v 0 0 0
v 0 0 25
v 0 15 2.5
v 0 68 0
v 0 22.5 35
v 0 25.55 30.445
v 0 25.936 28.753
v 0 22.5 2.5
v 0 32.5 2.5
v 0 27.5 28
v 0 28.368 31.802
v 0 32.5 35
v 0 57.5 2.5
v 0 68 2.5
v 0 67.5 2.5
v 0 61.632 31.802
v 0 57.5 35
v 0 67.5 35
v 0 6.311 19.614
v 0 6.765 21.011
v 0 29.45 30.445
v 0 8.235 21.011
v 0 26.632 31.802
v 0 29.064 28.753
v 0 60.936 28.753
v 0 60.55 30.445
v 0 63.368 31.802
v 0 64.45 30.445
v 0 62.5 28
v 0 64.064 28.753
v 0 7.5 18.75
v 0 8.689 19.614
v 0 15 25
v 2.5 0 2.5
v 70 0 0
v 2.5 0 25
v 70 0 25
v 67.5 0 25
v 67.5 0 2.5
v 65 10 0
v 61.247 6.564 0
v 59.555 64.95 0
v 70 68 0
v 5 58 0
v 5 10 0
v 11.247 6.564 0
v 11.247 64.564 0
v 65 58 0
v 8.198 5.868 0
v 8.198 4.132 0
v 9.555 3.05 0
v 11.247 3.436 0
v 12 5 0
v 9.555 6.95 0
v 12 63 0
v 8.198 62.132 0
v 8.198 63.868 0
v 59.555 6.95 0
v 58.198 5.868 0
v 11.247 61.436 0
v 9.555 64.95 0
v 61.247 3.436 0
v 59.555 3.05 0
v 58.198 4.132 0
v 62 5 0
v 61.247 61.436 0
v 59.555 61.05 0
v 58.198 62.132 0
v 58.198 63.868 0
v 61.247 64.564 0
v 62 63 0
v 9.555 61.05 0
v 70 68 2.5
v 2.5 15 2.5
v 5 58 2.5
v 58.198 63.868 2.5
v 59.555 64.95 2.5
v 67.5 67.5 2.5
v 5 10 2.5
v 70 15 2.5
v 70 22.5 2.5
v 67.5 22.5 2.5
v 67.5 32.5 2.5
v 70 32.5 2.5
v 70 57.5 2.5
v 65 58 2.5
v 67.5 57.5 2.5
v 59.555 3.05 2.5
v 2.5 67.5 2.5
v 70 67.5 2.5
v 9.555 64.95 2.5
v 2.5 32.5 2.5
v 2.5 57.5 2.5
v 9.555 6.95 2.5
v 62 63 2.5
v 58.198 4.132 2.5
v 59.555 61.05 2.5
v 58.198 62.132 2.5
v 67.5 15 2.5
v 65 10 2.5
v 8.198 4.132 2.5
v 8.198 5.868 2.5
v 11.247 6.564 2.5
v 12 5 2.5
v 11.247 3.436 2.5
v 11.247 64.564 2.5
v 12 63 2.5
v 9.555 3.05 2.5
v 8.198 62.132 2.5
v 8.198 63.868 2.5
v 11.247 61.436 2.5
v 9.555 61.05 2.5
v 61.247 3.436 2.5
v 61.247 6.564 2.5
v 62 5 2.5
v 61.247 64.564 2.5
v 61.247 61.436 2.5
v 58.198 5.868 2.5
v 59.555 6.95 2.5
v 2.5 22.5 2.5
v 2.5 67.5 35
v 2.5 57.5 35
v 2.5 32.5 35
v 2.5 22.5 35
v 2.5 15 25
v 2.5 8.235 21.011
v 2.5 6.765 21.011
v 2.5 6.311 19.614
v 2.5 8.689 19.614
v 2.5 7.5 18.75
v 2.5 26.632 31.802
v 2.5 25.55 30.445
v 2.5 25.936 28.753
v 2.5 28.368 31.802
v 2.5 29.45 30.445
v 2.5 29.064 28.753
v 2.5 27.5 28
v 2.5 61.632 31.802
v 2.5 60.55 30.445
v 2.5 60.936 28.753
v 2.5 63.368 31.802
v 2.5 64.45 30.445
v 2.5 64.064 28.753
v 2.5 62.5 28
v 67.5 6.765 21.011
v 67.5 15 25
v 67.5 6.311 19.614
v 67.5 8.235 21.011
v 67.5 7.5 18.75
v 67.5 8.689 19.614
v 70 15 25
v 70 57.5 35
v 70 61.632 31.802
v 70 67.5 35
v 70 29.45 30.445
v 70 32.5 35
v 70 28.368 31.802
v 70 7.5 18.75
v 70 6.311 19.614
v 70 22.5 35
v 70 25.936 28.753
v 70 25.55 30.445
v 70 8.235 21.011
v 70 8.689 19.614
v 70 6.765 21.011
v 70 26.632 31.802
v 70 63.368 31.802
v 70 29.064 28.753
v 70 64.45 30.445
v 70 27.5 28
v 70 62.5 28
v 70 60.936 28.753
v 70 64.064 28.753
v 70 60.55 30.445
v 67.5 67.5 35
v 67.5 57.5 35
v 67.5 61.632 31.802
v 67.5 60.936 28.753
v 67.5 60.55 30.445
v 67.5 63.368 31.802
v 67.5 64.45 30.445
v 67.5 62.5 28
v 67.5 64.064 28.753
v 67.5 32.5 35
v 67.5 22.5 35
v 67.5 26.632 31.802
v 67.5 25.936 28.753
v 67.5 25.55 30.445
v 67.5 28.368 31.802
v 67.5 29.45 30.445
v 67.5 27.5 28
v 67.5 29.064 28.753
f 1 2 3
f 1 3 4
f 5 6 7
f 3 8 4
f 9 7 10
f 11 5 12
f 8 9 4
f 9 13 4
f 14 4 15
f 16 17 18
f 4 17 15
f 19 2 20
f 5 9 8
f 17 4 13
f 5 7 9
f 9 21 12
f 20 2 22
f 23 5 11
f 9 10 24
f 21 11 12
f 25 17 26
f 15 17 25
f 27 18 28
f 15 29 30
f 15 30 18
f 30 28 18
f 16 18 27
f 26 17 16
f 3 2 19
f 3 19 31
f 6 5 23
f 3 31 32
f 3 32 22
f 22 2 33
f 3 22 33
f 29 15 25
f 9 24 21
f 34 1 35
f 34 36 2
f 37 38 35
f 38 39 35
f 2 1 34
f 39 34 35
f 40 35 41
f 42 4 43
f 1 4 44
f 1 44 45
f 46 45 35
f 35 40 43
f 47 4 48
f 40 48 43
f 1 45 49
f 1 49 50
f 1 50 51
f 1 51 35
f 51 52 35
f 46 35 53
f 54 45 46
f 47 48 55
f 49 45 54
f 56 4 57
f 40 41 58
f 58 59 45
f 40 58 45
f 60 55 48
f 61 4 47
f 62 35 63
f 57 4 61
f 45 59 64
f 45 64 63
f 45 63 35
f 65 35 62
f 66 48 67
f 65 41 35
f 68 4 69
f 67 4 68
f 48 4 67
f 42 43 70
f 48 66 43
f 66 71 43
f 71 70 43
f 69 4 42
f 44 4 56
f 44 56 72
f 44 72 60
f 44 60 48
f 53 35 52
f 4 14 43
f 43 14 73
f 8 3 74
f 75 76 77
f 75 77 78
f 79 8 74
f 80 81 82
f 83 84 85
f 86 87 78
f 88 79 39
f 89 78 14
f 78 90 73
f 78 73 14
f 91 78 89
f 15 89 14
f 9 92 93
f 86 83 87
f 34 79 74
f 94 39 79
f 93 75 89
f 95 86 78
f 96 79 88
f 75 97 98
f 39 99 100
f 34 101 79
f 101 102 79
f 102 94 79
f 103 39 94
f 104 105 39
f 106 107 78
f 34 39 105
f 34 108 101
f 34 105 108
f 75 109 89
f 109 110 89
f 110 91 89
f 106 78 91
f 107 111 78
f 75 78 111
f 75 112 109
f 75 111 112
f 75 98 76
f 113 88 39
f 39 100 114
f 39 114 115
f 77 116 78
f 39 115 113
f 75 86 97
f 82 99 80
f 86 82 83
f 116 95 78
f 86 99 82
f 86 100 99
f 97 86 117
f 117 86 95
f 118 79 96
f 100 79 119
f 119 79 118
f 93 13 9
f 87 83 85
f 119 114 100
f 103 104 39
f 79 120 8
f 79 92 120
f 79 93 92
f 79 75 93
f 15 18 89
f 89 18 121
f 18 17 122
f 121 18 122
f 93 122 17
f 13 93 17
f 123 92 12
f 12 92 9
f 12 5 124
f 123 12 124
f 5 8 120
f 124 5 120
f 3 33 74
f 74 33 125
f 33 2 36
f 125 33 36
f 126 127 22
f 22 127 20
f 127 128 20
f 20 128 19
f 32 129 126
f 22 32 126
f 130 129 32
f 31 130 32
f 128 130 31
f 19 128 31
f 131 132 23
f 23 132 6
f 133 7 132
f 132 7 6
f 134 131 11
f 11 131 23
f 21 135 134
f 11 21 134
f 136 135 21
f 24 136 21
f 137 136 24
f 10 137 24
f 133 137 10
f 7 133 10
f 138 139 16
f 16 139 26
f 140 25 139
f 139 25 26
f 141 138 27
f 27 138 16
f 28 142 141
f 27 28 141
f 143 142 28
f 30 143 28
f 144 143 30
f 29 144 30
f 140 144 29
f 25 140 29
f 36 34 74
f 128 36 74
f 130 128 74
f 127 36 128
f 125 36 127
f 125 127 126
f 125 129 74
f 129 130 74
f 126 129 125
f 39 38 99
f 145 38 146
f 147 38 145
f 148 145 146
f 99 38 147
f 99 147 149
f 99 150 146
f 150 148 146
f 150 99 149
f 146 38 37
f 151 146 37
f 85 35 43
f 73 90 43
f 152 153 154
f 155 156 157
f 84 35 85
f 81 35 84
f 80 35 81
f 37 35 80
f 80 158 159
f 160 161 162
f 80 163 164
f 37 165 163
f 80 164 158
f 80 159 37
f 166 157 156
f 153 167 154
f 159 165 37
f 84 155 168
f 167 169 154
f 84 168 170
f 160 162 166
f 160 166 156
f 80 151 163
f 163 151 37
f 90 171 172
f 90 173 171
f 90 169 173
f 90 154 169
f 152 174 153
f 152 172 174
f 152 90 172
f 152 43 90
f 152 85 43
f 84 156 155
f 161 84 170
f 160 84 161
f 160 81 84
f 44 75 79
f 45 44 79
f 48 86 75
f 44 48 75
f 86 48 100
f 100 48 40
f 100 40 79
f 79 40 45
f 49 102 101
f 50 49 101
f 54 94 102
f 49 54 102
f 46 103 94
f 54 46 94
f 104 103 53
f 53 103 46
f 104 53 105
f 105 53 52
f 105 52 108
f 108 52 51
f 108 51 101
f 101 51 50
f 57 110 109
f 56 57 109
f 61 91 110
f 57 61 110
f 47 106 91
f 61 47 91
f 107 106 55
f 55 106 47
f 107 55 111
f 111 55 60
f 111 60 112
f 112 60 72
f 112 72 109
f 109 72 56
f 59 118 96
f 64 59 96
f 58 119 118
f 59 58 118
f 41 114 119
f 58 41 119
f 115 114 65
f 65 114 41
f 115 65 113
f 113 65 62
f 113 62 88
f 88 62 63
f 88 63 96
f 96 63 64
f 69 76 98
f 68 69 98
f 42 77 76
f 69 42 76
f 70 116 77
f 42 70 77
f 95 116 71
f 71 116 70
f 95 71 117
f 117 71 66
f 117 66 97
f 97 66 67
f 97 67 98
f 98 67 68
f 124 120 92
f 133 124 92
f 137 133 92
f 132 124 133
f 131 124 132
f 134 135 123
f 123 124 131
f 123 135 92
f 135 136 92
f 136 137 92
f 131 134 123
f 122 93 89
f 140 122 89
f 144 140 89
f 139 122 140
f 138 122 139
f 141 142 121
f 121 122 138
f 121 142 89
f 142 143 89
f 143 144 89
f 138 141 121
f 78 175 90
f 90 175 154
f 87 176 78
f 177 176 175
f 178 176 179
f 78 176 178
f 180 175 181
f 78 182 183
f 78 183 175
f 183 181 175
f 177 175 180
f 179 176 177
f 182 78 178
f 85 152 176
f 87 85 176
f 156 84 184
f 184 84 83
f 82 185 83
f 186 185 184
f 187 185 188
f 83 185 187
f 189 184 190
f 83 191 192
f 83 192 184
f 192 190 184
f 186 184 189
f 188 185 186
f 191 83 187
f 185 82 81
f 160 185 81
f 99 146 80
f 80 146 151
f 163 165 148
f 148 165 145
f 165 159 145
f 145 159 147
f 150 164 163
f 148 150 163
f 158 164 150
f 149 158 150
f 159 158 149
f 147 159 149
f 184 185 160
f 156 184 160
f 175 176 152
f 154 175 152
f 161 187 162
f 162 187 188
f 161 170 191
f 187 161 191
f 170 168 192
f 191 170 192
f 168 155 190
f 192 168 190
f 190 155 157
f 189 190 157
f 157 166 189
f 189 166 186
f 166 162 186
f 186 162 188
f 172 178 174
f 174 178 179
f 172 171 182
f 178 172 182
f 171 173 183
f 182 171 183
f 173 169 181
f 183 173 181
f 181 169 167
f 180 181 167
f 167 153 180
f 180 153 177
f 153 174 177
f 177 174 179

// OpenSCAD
union(){
	difference(){
		cube([70,68,2.5]);
		translate([5,10,0])
		cube([60,48,2.5]);
		translate([10,5,0])
		cylinder(d=4, h=2.5);
		translate([60,5,0])
		cylinder(d=4, h=2.5);
		translate([10,63,0])
		cylinder(d=4, h=2.5);
		translate([60,63,0])
		cylinder(d=4, h=2.5);
	}
	difference(){
		translate([0])
		cube([2.5,15,25]);

		translate([-0.1,7.5,20])
		rotate(90,[0,1,0])
		cylinder(d=2.5, h=2.7);
	}
	difference(){
		translate([67.5,0,0])
		cube([2.5,15,25]);

		translate([67.4,7.5,20])
		rotate(90,[0,1,0])
		cylinder(d=2.5, h=2.7);
	}	



	difference(){
		translate([0,22.5,0])
		cube([2.5,45,35]);

		translate([0,32.5,0])
		cube([2.5,25,35]);

		translate([-0.1,27.5,30])
		rotate(90,[0,1,0])
		cylinder(d=4, h=2.7);

		translate([-0.1,62.5,30])
		rotate(90,[0,1,0])
		cylinder(d=4, h=2.7);
	}
	difference(){
		translate([67.5,22.5,0])
		cube([2.5,45,35]);

		translate([67.5,32.5,0])
		cube([2.5,25,35]);

		translate([67.4,27.5,30])
		rotate(90,[0,1,0])
		cylinder(d=4, h=2.7);

		translate([67.4,62.5,30])
		rotate(90,[0,1,0])
		cylinder(d=4, h=2.7);
	}
}
